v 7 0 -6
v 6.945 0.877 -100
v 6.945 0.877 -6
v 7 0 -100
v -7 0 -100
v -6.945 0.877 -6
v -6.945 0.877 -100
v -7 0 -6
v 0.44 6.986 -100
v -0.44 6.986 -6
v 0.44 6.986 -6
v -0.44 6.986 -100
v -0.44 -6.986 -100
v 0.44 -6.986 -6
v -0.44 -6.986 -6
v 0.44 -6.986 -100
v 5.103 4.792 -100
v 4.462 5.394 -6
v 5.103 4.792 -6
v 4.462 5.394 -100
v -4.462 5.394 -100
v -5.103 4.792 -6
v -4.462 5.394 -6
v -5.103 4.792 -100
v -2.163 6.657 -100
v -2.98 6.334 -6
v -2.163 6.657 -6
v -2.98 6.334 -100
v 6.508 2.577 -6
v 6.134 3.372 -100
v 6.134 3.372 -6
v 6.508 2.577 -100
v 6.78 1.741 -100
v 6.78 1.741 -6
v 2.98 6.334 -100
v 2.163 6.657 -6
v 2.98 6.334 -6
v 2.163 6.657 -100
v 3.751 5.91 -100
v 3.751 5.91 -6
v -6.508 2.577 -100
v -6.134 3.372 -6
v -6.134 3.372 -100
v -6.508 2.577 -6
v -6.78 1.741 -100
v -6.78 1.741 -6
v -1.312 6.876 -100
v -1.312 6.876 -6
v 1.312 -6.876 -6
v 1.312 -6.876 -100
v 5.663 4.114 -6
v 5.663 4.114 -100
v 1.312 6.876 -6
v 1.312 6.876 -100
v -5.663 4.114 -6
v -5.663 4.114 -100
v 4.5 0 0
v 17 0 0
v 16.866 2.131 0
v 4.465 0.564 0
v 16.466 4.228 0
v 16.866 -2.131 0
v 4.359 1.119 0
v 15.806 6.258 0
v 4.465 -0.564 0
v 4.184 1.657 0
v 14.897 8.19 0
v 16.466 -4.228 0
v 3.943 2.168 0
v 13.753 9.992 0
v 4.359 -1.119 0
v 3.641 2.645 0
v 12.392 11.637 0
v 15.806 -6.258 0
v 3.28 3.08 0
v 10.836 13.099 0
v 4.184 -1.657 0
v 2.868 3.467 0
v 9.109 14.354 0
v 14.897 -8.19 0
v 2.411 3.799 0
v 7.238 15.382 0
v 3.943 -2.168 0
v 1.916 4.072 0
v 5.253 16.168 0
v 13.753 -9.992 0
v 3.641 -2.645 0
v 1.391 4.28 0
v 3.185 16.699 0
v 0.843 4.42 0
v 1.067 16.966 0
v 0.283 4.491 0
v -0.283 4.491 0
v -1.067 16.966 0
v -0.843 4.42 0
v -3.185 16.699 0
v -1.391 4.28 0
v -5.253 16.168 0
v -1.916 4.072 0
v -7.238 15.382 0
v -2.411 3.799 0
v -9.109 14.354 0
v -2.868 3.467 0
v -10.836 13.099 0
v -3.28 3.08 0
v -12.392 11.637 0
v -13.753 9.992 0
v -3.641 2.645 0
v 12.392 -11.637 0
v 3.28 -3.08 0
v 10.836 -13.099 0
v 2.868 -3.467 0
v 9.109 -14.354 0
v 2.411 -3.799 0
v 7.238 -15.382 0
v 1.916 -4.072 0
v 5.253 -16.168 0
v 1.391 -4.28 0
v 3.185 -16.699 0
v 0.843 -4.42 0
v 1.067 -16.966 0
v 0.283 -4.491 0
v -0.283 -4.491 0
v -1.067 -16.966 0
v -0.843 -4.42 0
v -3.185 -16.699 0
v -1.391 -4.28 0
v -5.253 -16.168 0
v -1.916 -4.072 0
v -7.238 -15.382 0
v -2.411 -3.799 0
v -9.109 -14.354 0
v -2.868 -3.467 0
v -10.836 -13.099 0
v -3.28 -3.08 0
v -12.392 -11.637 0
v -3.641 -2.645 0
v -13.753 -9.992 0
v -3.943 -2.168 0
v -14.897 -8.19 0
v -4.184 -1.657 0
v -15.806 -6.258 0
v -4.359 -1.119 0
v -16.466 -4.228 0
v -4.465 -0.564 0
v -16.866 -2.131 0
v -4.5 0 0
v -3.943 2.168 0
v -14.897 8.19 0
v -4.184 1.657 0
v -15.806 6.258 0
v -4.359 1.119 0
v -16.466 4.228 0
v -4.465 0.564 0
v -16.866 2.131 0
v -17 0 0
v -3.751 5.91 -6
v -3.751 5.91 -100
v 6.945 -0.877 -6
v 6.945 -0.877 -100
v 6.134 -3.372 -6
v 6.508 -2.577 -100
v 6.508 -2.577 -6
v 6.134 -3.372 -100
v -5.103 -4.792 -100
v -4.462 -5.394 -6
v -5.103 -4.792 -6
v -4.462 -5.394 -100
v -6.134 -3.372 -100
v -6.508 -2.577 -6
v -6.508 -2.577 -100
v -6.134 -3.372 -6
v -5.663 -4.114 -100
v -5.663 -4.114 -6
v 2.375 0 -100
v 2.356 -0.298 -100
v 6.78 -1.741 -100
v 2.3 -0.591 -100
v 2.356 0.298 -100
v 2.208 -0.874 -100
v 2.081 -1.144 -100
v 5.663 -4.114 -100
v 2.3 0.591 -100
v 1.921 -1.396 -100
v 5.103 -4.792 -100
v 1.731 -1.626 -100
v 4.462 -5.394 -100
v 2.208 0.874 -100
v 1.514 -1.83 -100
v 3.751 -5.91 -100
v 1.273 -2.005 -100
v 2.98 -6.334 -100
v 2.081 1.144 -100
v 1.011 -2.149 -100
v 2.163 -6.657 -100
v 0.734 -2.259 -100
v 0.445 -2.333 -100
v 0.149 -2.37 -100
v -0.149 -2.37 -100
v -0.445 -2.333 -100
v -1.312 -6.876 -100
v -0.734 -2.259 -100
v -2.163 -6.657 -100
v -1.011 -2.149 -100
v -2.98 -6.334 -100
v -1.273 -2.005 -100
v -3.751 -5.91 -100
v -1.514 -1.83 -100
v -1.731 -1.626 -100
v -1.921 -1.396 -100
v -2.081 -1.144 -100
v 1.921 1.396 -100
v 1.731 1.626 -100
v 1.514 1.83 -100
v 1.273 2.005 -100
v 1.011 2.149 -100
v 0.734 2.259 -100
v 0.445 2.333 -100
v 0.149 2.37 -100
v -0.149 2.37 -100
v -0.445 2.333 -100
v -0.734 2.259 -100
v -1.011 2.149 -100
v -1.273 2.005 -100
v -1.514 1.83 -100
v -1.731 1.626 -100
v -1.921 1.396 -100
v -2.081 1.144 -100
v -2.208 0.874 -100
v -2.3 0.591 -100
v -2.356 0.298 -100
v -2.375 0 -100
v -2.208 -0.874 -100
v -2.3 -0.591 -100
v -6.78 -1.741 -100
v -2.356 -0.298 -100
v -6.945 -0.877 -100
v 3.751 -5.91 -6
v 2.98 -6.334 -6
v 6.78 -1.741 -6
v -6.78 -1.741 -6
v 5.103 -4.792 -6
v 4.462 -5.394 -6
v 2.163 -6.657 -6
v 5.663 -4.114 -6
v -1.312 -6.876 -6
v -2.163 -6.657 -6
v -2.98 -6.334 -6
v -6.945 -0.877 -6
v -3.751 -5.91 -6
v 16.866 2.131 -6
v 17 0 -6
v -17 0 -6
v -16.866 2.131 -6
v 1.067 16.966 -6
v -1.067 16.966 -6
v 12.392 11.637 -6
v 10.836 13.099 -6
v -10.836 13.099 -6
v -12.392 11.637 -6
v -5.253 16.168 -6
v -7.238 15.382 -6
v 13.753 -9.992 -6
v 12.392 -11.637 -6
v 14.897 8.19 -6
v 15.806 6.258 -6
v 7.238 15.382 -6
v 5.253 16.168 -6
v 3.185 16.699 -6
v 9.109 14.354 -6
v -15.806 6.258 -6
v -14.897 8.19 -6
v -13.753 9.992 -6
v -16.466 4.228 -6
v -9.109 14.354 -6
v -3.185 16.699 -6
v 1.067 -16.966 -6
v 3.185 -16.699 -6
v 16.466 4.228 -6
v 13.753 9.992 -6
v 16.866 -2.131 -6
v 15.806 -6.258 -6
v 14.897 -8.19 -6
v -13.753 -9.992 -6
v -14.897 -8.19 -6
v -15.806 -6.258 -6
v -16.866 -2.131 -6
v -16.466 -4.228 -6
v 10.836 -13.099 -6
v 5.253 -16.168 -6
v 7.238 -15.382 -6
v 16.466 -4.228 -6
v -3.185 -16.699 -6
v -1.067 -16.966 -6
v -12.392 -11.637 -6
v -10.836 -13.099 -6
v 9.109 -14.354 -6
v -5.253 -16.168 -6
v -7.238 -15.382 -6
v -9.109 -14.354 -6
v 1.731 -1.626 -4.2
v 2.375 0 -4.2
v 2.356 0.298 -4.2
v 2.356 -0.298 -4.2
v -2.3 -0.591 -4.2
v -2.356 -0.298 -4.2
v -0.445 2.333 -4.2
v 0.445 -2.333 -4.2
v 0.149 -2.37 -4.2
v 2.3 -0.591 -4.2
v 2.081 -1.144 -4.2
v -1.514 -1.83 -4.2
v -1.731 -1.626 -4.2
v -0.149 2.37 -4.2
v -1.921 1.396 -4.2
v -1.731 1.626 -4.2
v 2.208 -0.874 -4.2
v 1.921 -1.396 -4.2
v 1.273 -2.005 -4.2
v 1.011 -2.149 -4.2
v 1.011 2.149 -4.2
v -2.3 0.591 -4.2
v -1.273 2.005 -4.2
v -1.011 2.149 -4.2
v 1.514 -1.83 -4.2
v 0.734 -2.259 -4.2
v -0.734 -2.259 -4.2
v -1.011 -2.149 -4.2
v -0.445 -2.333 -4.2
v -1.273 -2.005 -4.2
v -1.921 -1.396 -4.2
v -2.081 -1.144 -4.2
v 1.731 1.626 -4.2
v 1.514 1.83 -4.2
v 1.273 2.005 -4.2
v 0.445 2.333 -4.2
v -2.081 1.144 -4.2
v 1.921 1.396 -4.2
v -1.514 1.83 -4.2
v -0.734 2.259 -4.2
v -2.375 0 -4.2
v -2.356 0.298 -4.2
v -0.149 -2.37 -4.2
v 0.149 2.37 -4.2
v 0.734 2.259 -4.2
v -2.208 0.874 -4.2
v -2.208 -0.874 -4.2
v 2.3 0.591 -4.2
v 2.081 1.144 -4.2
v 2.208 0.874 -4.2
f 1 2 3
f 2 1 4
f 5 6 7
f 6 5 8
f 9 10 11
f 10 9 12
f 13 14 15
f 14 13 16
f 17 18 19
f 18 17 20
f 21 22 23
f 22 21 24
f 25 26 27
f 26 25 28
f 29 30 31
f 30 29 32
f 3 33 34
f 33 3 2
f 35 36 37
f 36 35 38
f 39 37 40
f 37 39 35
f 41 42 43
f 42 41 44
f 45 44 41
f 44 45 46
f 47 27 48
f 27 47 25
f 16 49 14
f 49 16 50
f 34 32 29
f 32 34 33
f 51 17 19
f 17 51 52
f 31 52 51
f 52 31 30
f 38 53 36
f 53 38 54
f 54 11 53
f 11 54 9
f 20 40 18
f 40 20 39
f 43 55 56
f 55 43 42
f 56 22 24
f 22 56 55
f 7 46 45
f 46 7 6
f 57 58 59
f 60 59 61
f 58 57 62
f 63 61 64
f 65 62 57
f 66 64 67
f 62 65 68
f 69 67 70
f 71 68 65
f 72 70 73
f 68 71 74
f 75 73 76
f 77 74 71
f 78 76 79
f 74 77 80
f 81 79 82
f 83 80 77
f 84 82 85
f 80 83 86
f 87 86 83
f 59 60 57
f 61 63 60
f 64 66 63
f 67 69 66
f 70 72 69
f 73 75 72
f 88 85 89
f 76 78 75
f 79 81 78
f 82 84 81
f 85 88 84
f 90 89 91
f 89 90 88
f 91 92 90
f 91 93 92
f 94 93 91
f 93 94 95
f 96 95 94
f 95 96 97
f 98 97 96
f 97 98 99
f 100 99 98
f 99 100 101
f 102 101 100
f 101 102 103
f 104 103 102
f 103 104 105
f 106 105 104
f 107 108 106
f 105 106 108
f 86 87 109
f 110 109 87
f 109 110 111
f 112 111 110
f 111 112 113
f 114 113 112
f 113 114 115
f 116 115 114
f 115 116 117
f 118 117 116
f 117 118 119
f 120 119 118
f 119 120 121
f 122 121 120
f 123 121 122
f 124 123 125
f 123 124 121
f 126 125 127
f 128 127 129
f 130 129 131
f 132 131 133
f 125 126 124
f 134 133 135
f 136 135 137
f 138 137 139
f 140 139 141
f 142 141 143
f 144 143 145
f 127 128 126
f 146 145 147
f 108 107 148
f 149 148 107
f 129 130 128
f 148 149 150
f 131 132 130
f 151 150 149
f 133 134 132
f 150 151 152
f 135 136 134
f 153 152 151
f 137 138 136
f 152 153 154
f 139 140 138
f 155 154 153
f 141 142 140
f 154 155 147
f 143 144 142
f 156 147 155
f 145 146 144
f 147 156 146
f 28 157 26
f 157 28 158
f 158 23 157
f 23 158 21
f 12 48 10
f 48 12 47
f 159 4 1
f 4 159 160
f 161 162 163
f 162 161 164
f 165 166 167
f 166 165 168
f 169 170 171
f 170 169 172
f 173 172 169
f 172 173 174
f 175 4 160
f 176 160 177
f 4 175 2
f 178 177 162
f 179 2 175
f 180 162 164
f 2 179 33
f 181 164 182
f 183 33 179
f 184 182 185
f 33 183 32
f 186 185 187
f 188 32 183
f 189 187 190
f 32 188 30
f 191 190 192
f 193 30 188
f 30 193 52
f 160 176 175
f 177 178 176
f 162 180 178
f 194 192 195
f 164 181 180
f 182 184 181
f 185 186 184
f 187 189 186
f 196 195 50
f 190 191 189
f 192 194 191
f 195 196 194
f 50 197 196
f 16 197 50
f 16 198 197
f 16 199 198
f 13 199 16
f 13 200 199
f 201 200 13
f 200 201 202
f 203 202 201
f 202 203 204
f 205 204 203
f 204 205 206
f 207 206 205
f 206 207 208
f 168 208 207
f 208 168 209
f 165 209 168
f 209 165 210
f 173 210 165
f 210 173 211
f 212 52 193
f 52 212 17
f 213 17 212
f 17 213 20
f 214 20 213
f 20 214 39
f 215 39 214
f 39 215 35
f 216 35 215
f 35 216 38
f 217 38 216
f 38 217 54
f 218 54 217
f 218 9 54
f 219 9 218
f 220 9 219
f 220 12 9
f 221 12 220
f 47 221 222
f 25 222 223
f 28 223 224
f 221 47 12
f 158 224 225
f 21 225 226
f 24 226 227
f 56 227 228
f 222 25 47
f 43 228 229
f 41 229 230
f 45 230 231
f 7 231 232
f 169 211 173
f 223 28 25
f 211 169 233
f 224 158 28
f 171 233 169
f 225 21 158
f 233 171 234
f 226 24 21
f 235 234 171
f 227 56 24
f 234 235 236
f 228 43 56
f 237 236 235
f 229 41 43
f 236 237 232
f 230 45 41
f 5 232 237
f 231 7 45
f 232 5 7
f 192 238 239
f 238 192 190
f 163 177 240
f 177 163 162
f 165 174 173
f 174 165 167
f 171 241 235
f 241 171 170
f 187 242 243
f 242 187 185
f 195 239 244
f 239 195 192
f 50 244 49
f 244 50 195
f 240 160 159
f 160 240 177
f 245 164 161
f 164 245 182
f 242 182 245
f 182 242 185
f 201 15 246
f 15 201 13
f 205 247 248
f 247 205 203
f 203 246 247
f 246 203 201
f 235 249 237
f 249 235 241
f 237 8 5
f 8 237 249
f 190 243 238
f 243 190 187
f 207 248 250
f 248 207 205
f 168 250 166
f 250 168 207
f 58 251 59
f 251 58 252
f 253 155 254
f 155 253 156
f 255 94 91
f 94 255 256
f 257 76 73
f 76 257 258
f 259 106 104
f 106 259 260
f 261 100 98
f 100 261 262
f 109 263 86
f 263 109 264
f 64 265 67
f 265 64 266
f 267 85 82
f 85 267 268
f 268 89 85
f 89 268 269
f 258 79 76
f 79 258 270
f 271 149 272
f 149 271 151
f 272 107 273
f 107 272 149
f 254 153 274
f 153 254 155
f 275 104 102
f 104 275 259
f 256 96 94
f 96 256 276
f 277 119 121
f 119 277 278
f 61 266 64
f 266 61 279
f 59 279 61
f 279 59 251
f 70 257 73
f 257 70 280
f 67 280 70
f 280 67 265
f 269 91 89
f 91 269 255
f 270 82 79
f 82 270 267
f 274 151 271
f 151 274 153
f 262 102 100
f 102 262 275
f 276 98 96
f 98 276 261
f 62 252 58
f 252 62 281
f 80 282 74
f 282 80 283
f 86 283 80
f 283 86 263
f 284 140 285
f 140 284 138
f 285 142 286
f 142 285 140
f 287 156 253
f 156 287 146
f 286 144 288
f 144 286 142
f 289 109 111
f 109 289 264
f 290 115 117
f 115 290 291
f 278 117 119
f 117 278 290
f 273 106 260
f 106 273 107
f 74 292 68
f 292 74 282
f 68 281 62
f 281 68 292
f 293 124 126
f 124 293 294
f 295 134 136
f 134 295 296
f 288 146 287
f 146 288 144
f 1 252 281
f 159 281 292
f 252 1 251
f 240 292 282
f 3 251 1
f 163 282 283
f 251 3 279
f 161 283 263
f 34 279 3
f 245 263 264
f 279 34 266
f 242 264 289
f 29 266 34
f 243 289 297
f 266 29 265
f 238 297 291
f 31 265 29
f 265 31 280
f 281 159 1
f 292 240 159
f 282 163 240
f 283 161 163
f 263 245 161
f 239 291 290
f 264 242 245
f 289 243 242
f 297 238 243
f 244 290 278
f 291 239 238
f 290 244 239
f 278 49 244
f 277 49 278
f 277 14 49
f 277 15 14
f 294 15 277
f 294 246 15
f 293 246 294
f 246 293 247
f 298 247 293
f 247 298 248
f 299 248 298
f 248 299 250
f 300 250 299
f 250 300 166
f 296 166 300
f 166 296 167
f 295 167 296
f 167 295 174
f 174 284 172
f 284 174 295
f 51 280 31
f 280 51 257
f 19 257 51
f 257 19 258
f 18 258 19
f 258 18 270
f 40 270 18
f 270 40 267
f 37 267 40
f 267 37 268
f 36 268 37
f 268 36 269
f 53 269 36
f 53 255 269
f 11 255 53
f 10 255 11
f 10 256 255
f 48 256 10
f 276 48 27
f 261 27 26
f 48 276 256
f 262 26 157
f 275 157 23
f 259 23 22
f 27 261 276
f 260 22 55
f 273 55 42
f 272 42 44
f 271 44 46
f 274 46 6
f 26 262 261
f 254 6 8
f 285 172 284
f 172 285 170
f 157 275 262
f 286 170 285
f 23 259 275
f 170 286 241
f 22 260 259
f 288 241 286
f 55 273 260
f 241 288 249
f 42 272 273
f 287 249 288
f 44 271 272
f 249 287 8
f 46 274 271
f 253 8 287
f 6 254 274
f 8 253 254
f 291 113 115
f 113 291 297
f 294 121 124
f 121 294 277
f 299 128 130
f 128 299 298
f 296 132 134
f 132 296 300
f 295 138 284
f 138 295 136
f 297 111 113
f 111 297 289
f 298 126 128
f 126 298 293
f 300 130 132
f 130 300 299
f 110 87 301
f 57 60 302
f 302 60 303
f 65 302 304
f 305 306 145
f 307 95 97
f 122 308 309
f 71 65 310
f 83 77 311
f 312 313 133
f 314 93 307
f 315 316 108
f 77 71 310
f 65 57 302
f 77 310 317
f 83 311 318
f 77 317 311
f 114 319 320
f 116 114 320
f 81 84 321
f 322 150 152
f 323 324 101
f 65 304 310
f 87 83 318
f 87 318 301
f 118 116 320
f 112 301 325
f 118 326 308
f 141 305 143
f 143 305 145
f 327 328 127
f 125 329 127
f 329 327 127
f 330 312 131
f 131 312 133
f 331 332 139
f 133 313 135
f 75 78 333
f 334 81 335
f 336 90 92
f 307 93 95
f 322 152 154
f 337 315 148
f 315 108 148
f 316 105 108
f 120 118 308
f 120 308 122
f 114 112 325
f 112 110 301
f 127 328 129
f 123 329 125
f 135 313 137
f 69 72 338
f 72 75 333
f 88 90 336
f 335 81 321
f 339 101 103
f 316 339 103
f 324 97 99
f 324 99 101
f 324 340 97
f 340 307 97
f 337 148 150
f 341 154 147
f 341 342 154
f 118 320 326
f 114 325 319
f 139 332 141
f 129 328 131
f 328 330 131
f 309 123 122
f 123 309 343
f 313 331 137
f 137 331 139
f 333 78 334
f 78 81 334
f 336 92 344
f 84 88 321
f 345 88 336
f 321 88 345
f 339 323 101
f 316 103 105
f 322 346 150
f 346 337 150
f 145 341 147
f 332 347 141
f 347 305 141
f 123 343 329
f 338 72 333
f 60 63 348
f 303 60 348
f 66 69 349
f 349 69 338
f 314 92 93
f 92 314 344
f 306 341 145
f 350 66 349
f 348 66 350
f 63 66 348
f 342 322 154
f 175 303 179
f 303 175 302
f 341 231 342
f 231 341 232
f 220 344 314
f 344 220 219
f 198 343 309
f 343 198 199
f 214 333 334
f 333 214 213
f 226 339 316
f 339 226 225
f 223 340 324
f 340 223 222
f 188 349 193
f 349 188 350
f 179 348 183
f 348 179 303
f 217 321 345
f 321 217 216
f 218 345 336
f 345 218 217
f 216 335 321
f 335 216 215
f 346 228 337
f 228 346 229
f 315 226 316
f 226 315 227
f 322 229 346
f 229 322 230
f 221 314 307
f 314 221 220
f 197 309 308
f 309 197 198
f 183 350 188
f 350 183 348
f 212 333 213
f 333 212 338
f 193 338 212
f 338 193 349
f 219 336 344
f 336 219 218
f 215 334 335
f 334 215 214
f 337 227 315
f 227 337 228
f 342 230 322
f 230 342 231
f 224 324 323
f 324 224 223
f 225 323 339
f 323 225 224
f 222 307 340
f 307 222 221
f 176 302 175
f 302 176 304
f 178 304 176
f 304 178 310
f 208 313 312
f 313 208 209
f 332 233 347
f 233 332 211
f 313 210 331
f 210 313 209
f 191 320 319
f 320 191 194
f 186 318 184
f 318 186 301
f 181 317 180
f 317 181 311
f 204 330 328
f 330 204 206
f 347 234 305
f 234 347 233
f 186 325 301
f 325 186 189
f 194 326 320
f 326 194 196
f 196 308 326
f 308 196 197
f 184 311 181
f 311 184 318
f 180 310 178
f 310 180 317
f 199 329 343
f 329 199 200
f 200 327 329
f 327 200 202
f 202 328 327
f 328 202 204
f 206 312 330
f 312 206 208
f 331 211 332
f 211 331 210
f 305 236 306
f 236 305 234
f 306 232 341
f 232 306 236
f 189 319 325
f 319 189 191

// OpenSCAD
$fn = 50;


difference() {
	union() {
		translate(v = [0, 0, -100.0000000000]) {
			cylinder(h = 100, r = 7.0000000000);
		}
		translate(v = [0, 0, -6.0000000000]) {
			cylinder(h = 6, r = 17.0000000000);
		}
	}
	union() {
		translate(v = [0, 0, 0]) {
			rotate(a = [0, 0, 0]) {
				difference() {
					union() {
						#translate(v = [0, 0, -100.0000000000]) {
							cylinder(h = 100, r = 2.2500000000);
						}
						#translate(v = [0, 0, -4.2000000000]) {
							cylinder(h = 4.2000000000, r1 = 2.3750000000, r2 = 4.5000000000);
						}
						#translate(v = [0, 0, -100.0000000000]) {
							cylinder(h = 100, r = 2.3750000000);
						}
						#translate(v = [0, 0, -100.0000000000]) {
							cylinder(h = 100, r = 2.2500000000);
						}
					}
					union();
				}
			}
		}
	}
}
